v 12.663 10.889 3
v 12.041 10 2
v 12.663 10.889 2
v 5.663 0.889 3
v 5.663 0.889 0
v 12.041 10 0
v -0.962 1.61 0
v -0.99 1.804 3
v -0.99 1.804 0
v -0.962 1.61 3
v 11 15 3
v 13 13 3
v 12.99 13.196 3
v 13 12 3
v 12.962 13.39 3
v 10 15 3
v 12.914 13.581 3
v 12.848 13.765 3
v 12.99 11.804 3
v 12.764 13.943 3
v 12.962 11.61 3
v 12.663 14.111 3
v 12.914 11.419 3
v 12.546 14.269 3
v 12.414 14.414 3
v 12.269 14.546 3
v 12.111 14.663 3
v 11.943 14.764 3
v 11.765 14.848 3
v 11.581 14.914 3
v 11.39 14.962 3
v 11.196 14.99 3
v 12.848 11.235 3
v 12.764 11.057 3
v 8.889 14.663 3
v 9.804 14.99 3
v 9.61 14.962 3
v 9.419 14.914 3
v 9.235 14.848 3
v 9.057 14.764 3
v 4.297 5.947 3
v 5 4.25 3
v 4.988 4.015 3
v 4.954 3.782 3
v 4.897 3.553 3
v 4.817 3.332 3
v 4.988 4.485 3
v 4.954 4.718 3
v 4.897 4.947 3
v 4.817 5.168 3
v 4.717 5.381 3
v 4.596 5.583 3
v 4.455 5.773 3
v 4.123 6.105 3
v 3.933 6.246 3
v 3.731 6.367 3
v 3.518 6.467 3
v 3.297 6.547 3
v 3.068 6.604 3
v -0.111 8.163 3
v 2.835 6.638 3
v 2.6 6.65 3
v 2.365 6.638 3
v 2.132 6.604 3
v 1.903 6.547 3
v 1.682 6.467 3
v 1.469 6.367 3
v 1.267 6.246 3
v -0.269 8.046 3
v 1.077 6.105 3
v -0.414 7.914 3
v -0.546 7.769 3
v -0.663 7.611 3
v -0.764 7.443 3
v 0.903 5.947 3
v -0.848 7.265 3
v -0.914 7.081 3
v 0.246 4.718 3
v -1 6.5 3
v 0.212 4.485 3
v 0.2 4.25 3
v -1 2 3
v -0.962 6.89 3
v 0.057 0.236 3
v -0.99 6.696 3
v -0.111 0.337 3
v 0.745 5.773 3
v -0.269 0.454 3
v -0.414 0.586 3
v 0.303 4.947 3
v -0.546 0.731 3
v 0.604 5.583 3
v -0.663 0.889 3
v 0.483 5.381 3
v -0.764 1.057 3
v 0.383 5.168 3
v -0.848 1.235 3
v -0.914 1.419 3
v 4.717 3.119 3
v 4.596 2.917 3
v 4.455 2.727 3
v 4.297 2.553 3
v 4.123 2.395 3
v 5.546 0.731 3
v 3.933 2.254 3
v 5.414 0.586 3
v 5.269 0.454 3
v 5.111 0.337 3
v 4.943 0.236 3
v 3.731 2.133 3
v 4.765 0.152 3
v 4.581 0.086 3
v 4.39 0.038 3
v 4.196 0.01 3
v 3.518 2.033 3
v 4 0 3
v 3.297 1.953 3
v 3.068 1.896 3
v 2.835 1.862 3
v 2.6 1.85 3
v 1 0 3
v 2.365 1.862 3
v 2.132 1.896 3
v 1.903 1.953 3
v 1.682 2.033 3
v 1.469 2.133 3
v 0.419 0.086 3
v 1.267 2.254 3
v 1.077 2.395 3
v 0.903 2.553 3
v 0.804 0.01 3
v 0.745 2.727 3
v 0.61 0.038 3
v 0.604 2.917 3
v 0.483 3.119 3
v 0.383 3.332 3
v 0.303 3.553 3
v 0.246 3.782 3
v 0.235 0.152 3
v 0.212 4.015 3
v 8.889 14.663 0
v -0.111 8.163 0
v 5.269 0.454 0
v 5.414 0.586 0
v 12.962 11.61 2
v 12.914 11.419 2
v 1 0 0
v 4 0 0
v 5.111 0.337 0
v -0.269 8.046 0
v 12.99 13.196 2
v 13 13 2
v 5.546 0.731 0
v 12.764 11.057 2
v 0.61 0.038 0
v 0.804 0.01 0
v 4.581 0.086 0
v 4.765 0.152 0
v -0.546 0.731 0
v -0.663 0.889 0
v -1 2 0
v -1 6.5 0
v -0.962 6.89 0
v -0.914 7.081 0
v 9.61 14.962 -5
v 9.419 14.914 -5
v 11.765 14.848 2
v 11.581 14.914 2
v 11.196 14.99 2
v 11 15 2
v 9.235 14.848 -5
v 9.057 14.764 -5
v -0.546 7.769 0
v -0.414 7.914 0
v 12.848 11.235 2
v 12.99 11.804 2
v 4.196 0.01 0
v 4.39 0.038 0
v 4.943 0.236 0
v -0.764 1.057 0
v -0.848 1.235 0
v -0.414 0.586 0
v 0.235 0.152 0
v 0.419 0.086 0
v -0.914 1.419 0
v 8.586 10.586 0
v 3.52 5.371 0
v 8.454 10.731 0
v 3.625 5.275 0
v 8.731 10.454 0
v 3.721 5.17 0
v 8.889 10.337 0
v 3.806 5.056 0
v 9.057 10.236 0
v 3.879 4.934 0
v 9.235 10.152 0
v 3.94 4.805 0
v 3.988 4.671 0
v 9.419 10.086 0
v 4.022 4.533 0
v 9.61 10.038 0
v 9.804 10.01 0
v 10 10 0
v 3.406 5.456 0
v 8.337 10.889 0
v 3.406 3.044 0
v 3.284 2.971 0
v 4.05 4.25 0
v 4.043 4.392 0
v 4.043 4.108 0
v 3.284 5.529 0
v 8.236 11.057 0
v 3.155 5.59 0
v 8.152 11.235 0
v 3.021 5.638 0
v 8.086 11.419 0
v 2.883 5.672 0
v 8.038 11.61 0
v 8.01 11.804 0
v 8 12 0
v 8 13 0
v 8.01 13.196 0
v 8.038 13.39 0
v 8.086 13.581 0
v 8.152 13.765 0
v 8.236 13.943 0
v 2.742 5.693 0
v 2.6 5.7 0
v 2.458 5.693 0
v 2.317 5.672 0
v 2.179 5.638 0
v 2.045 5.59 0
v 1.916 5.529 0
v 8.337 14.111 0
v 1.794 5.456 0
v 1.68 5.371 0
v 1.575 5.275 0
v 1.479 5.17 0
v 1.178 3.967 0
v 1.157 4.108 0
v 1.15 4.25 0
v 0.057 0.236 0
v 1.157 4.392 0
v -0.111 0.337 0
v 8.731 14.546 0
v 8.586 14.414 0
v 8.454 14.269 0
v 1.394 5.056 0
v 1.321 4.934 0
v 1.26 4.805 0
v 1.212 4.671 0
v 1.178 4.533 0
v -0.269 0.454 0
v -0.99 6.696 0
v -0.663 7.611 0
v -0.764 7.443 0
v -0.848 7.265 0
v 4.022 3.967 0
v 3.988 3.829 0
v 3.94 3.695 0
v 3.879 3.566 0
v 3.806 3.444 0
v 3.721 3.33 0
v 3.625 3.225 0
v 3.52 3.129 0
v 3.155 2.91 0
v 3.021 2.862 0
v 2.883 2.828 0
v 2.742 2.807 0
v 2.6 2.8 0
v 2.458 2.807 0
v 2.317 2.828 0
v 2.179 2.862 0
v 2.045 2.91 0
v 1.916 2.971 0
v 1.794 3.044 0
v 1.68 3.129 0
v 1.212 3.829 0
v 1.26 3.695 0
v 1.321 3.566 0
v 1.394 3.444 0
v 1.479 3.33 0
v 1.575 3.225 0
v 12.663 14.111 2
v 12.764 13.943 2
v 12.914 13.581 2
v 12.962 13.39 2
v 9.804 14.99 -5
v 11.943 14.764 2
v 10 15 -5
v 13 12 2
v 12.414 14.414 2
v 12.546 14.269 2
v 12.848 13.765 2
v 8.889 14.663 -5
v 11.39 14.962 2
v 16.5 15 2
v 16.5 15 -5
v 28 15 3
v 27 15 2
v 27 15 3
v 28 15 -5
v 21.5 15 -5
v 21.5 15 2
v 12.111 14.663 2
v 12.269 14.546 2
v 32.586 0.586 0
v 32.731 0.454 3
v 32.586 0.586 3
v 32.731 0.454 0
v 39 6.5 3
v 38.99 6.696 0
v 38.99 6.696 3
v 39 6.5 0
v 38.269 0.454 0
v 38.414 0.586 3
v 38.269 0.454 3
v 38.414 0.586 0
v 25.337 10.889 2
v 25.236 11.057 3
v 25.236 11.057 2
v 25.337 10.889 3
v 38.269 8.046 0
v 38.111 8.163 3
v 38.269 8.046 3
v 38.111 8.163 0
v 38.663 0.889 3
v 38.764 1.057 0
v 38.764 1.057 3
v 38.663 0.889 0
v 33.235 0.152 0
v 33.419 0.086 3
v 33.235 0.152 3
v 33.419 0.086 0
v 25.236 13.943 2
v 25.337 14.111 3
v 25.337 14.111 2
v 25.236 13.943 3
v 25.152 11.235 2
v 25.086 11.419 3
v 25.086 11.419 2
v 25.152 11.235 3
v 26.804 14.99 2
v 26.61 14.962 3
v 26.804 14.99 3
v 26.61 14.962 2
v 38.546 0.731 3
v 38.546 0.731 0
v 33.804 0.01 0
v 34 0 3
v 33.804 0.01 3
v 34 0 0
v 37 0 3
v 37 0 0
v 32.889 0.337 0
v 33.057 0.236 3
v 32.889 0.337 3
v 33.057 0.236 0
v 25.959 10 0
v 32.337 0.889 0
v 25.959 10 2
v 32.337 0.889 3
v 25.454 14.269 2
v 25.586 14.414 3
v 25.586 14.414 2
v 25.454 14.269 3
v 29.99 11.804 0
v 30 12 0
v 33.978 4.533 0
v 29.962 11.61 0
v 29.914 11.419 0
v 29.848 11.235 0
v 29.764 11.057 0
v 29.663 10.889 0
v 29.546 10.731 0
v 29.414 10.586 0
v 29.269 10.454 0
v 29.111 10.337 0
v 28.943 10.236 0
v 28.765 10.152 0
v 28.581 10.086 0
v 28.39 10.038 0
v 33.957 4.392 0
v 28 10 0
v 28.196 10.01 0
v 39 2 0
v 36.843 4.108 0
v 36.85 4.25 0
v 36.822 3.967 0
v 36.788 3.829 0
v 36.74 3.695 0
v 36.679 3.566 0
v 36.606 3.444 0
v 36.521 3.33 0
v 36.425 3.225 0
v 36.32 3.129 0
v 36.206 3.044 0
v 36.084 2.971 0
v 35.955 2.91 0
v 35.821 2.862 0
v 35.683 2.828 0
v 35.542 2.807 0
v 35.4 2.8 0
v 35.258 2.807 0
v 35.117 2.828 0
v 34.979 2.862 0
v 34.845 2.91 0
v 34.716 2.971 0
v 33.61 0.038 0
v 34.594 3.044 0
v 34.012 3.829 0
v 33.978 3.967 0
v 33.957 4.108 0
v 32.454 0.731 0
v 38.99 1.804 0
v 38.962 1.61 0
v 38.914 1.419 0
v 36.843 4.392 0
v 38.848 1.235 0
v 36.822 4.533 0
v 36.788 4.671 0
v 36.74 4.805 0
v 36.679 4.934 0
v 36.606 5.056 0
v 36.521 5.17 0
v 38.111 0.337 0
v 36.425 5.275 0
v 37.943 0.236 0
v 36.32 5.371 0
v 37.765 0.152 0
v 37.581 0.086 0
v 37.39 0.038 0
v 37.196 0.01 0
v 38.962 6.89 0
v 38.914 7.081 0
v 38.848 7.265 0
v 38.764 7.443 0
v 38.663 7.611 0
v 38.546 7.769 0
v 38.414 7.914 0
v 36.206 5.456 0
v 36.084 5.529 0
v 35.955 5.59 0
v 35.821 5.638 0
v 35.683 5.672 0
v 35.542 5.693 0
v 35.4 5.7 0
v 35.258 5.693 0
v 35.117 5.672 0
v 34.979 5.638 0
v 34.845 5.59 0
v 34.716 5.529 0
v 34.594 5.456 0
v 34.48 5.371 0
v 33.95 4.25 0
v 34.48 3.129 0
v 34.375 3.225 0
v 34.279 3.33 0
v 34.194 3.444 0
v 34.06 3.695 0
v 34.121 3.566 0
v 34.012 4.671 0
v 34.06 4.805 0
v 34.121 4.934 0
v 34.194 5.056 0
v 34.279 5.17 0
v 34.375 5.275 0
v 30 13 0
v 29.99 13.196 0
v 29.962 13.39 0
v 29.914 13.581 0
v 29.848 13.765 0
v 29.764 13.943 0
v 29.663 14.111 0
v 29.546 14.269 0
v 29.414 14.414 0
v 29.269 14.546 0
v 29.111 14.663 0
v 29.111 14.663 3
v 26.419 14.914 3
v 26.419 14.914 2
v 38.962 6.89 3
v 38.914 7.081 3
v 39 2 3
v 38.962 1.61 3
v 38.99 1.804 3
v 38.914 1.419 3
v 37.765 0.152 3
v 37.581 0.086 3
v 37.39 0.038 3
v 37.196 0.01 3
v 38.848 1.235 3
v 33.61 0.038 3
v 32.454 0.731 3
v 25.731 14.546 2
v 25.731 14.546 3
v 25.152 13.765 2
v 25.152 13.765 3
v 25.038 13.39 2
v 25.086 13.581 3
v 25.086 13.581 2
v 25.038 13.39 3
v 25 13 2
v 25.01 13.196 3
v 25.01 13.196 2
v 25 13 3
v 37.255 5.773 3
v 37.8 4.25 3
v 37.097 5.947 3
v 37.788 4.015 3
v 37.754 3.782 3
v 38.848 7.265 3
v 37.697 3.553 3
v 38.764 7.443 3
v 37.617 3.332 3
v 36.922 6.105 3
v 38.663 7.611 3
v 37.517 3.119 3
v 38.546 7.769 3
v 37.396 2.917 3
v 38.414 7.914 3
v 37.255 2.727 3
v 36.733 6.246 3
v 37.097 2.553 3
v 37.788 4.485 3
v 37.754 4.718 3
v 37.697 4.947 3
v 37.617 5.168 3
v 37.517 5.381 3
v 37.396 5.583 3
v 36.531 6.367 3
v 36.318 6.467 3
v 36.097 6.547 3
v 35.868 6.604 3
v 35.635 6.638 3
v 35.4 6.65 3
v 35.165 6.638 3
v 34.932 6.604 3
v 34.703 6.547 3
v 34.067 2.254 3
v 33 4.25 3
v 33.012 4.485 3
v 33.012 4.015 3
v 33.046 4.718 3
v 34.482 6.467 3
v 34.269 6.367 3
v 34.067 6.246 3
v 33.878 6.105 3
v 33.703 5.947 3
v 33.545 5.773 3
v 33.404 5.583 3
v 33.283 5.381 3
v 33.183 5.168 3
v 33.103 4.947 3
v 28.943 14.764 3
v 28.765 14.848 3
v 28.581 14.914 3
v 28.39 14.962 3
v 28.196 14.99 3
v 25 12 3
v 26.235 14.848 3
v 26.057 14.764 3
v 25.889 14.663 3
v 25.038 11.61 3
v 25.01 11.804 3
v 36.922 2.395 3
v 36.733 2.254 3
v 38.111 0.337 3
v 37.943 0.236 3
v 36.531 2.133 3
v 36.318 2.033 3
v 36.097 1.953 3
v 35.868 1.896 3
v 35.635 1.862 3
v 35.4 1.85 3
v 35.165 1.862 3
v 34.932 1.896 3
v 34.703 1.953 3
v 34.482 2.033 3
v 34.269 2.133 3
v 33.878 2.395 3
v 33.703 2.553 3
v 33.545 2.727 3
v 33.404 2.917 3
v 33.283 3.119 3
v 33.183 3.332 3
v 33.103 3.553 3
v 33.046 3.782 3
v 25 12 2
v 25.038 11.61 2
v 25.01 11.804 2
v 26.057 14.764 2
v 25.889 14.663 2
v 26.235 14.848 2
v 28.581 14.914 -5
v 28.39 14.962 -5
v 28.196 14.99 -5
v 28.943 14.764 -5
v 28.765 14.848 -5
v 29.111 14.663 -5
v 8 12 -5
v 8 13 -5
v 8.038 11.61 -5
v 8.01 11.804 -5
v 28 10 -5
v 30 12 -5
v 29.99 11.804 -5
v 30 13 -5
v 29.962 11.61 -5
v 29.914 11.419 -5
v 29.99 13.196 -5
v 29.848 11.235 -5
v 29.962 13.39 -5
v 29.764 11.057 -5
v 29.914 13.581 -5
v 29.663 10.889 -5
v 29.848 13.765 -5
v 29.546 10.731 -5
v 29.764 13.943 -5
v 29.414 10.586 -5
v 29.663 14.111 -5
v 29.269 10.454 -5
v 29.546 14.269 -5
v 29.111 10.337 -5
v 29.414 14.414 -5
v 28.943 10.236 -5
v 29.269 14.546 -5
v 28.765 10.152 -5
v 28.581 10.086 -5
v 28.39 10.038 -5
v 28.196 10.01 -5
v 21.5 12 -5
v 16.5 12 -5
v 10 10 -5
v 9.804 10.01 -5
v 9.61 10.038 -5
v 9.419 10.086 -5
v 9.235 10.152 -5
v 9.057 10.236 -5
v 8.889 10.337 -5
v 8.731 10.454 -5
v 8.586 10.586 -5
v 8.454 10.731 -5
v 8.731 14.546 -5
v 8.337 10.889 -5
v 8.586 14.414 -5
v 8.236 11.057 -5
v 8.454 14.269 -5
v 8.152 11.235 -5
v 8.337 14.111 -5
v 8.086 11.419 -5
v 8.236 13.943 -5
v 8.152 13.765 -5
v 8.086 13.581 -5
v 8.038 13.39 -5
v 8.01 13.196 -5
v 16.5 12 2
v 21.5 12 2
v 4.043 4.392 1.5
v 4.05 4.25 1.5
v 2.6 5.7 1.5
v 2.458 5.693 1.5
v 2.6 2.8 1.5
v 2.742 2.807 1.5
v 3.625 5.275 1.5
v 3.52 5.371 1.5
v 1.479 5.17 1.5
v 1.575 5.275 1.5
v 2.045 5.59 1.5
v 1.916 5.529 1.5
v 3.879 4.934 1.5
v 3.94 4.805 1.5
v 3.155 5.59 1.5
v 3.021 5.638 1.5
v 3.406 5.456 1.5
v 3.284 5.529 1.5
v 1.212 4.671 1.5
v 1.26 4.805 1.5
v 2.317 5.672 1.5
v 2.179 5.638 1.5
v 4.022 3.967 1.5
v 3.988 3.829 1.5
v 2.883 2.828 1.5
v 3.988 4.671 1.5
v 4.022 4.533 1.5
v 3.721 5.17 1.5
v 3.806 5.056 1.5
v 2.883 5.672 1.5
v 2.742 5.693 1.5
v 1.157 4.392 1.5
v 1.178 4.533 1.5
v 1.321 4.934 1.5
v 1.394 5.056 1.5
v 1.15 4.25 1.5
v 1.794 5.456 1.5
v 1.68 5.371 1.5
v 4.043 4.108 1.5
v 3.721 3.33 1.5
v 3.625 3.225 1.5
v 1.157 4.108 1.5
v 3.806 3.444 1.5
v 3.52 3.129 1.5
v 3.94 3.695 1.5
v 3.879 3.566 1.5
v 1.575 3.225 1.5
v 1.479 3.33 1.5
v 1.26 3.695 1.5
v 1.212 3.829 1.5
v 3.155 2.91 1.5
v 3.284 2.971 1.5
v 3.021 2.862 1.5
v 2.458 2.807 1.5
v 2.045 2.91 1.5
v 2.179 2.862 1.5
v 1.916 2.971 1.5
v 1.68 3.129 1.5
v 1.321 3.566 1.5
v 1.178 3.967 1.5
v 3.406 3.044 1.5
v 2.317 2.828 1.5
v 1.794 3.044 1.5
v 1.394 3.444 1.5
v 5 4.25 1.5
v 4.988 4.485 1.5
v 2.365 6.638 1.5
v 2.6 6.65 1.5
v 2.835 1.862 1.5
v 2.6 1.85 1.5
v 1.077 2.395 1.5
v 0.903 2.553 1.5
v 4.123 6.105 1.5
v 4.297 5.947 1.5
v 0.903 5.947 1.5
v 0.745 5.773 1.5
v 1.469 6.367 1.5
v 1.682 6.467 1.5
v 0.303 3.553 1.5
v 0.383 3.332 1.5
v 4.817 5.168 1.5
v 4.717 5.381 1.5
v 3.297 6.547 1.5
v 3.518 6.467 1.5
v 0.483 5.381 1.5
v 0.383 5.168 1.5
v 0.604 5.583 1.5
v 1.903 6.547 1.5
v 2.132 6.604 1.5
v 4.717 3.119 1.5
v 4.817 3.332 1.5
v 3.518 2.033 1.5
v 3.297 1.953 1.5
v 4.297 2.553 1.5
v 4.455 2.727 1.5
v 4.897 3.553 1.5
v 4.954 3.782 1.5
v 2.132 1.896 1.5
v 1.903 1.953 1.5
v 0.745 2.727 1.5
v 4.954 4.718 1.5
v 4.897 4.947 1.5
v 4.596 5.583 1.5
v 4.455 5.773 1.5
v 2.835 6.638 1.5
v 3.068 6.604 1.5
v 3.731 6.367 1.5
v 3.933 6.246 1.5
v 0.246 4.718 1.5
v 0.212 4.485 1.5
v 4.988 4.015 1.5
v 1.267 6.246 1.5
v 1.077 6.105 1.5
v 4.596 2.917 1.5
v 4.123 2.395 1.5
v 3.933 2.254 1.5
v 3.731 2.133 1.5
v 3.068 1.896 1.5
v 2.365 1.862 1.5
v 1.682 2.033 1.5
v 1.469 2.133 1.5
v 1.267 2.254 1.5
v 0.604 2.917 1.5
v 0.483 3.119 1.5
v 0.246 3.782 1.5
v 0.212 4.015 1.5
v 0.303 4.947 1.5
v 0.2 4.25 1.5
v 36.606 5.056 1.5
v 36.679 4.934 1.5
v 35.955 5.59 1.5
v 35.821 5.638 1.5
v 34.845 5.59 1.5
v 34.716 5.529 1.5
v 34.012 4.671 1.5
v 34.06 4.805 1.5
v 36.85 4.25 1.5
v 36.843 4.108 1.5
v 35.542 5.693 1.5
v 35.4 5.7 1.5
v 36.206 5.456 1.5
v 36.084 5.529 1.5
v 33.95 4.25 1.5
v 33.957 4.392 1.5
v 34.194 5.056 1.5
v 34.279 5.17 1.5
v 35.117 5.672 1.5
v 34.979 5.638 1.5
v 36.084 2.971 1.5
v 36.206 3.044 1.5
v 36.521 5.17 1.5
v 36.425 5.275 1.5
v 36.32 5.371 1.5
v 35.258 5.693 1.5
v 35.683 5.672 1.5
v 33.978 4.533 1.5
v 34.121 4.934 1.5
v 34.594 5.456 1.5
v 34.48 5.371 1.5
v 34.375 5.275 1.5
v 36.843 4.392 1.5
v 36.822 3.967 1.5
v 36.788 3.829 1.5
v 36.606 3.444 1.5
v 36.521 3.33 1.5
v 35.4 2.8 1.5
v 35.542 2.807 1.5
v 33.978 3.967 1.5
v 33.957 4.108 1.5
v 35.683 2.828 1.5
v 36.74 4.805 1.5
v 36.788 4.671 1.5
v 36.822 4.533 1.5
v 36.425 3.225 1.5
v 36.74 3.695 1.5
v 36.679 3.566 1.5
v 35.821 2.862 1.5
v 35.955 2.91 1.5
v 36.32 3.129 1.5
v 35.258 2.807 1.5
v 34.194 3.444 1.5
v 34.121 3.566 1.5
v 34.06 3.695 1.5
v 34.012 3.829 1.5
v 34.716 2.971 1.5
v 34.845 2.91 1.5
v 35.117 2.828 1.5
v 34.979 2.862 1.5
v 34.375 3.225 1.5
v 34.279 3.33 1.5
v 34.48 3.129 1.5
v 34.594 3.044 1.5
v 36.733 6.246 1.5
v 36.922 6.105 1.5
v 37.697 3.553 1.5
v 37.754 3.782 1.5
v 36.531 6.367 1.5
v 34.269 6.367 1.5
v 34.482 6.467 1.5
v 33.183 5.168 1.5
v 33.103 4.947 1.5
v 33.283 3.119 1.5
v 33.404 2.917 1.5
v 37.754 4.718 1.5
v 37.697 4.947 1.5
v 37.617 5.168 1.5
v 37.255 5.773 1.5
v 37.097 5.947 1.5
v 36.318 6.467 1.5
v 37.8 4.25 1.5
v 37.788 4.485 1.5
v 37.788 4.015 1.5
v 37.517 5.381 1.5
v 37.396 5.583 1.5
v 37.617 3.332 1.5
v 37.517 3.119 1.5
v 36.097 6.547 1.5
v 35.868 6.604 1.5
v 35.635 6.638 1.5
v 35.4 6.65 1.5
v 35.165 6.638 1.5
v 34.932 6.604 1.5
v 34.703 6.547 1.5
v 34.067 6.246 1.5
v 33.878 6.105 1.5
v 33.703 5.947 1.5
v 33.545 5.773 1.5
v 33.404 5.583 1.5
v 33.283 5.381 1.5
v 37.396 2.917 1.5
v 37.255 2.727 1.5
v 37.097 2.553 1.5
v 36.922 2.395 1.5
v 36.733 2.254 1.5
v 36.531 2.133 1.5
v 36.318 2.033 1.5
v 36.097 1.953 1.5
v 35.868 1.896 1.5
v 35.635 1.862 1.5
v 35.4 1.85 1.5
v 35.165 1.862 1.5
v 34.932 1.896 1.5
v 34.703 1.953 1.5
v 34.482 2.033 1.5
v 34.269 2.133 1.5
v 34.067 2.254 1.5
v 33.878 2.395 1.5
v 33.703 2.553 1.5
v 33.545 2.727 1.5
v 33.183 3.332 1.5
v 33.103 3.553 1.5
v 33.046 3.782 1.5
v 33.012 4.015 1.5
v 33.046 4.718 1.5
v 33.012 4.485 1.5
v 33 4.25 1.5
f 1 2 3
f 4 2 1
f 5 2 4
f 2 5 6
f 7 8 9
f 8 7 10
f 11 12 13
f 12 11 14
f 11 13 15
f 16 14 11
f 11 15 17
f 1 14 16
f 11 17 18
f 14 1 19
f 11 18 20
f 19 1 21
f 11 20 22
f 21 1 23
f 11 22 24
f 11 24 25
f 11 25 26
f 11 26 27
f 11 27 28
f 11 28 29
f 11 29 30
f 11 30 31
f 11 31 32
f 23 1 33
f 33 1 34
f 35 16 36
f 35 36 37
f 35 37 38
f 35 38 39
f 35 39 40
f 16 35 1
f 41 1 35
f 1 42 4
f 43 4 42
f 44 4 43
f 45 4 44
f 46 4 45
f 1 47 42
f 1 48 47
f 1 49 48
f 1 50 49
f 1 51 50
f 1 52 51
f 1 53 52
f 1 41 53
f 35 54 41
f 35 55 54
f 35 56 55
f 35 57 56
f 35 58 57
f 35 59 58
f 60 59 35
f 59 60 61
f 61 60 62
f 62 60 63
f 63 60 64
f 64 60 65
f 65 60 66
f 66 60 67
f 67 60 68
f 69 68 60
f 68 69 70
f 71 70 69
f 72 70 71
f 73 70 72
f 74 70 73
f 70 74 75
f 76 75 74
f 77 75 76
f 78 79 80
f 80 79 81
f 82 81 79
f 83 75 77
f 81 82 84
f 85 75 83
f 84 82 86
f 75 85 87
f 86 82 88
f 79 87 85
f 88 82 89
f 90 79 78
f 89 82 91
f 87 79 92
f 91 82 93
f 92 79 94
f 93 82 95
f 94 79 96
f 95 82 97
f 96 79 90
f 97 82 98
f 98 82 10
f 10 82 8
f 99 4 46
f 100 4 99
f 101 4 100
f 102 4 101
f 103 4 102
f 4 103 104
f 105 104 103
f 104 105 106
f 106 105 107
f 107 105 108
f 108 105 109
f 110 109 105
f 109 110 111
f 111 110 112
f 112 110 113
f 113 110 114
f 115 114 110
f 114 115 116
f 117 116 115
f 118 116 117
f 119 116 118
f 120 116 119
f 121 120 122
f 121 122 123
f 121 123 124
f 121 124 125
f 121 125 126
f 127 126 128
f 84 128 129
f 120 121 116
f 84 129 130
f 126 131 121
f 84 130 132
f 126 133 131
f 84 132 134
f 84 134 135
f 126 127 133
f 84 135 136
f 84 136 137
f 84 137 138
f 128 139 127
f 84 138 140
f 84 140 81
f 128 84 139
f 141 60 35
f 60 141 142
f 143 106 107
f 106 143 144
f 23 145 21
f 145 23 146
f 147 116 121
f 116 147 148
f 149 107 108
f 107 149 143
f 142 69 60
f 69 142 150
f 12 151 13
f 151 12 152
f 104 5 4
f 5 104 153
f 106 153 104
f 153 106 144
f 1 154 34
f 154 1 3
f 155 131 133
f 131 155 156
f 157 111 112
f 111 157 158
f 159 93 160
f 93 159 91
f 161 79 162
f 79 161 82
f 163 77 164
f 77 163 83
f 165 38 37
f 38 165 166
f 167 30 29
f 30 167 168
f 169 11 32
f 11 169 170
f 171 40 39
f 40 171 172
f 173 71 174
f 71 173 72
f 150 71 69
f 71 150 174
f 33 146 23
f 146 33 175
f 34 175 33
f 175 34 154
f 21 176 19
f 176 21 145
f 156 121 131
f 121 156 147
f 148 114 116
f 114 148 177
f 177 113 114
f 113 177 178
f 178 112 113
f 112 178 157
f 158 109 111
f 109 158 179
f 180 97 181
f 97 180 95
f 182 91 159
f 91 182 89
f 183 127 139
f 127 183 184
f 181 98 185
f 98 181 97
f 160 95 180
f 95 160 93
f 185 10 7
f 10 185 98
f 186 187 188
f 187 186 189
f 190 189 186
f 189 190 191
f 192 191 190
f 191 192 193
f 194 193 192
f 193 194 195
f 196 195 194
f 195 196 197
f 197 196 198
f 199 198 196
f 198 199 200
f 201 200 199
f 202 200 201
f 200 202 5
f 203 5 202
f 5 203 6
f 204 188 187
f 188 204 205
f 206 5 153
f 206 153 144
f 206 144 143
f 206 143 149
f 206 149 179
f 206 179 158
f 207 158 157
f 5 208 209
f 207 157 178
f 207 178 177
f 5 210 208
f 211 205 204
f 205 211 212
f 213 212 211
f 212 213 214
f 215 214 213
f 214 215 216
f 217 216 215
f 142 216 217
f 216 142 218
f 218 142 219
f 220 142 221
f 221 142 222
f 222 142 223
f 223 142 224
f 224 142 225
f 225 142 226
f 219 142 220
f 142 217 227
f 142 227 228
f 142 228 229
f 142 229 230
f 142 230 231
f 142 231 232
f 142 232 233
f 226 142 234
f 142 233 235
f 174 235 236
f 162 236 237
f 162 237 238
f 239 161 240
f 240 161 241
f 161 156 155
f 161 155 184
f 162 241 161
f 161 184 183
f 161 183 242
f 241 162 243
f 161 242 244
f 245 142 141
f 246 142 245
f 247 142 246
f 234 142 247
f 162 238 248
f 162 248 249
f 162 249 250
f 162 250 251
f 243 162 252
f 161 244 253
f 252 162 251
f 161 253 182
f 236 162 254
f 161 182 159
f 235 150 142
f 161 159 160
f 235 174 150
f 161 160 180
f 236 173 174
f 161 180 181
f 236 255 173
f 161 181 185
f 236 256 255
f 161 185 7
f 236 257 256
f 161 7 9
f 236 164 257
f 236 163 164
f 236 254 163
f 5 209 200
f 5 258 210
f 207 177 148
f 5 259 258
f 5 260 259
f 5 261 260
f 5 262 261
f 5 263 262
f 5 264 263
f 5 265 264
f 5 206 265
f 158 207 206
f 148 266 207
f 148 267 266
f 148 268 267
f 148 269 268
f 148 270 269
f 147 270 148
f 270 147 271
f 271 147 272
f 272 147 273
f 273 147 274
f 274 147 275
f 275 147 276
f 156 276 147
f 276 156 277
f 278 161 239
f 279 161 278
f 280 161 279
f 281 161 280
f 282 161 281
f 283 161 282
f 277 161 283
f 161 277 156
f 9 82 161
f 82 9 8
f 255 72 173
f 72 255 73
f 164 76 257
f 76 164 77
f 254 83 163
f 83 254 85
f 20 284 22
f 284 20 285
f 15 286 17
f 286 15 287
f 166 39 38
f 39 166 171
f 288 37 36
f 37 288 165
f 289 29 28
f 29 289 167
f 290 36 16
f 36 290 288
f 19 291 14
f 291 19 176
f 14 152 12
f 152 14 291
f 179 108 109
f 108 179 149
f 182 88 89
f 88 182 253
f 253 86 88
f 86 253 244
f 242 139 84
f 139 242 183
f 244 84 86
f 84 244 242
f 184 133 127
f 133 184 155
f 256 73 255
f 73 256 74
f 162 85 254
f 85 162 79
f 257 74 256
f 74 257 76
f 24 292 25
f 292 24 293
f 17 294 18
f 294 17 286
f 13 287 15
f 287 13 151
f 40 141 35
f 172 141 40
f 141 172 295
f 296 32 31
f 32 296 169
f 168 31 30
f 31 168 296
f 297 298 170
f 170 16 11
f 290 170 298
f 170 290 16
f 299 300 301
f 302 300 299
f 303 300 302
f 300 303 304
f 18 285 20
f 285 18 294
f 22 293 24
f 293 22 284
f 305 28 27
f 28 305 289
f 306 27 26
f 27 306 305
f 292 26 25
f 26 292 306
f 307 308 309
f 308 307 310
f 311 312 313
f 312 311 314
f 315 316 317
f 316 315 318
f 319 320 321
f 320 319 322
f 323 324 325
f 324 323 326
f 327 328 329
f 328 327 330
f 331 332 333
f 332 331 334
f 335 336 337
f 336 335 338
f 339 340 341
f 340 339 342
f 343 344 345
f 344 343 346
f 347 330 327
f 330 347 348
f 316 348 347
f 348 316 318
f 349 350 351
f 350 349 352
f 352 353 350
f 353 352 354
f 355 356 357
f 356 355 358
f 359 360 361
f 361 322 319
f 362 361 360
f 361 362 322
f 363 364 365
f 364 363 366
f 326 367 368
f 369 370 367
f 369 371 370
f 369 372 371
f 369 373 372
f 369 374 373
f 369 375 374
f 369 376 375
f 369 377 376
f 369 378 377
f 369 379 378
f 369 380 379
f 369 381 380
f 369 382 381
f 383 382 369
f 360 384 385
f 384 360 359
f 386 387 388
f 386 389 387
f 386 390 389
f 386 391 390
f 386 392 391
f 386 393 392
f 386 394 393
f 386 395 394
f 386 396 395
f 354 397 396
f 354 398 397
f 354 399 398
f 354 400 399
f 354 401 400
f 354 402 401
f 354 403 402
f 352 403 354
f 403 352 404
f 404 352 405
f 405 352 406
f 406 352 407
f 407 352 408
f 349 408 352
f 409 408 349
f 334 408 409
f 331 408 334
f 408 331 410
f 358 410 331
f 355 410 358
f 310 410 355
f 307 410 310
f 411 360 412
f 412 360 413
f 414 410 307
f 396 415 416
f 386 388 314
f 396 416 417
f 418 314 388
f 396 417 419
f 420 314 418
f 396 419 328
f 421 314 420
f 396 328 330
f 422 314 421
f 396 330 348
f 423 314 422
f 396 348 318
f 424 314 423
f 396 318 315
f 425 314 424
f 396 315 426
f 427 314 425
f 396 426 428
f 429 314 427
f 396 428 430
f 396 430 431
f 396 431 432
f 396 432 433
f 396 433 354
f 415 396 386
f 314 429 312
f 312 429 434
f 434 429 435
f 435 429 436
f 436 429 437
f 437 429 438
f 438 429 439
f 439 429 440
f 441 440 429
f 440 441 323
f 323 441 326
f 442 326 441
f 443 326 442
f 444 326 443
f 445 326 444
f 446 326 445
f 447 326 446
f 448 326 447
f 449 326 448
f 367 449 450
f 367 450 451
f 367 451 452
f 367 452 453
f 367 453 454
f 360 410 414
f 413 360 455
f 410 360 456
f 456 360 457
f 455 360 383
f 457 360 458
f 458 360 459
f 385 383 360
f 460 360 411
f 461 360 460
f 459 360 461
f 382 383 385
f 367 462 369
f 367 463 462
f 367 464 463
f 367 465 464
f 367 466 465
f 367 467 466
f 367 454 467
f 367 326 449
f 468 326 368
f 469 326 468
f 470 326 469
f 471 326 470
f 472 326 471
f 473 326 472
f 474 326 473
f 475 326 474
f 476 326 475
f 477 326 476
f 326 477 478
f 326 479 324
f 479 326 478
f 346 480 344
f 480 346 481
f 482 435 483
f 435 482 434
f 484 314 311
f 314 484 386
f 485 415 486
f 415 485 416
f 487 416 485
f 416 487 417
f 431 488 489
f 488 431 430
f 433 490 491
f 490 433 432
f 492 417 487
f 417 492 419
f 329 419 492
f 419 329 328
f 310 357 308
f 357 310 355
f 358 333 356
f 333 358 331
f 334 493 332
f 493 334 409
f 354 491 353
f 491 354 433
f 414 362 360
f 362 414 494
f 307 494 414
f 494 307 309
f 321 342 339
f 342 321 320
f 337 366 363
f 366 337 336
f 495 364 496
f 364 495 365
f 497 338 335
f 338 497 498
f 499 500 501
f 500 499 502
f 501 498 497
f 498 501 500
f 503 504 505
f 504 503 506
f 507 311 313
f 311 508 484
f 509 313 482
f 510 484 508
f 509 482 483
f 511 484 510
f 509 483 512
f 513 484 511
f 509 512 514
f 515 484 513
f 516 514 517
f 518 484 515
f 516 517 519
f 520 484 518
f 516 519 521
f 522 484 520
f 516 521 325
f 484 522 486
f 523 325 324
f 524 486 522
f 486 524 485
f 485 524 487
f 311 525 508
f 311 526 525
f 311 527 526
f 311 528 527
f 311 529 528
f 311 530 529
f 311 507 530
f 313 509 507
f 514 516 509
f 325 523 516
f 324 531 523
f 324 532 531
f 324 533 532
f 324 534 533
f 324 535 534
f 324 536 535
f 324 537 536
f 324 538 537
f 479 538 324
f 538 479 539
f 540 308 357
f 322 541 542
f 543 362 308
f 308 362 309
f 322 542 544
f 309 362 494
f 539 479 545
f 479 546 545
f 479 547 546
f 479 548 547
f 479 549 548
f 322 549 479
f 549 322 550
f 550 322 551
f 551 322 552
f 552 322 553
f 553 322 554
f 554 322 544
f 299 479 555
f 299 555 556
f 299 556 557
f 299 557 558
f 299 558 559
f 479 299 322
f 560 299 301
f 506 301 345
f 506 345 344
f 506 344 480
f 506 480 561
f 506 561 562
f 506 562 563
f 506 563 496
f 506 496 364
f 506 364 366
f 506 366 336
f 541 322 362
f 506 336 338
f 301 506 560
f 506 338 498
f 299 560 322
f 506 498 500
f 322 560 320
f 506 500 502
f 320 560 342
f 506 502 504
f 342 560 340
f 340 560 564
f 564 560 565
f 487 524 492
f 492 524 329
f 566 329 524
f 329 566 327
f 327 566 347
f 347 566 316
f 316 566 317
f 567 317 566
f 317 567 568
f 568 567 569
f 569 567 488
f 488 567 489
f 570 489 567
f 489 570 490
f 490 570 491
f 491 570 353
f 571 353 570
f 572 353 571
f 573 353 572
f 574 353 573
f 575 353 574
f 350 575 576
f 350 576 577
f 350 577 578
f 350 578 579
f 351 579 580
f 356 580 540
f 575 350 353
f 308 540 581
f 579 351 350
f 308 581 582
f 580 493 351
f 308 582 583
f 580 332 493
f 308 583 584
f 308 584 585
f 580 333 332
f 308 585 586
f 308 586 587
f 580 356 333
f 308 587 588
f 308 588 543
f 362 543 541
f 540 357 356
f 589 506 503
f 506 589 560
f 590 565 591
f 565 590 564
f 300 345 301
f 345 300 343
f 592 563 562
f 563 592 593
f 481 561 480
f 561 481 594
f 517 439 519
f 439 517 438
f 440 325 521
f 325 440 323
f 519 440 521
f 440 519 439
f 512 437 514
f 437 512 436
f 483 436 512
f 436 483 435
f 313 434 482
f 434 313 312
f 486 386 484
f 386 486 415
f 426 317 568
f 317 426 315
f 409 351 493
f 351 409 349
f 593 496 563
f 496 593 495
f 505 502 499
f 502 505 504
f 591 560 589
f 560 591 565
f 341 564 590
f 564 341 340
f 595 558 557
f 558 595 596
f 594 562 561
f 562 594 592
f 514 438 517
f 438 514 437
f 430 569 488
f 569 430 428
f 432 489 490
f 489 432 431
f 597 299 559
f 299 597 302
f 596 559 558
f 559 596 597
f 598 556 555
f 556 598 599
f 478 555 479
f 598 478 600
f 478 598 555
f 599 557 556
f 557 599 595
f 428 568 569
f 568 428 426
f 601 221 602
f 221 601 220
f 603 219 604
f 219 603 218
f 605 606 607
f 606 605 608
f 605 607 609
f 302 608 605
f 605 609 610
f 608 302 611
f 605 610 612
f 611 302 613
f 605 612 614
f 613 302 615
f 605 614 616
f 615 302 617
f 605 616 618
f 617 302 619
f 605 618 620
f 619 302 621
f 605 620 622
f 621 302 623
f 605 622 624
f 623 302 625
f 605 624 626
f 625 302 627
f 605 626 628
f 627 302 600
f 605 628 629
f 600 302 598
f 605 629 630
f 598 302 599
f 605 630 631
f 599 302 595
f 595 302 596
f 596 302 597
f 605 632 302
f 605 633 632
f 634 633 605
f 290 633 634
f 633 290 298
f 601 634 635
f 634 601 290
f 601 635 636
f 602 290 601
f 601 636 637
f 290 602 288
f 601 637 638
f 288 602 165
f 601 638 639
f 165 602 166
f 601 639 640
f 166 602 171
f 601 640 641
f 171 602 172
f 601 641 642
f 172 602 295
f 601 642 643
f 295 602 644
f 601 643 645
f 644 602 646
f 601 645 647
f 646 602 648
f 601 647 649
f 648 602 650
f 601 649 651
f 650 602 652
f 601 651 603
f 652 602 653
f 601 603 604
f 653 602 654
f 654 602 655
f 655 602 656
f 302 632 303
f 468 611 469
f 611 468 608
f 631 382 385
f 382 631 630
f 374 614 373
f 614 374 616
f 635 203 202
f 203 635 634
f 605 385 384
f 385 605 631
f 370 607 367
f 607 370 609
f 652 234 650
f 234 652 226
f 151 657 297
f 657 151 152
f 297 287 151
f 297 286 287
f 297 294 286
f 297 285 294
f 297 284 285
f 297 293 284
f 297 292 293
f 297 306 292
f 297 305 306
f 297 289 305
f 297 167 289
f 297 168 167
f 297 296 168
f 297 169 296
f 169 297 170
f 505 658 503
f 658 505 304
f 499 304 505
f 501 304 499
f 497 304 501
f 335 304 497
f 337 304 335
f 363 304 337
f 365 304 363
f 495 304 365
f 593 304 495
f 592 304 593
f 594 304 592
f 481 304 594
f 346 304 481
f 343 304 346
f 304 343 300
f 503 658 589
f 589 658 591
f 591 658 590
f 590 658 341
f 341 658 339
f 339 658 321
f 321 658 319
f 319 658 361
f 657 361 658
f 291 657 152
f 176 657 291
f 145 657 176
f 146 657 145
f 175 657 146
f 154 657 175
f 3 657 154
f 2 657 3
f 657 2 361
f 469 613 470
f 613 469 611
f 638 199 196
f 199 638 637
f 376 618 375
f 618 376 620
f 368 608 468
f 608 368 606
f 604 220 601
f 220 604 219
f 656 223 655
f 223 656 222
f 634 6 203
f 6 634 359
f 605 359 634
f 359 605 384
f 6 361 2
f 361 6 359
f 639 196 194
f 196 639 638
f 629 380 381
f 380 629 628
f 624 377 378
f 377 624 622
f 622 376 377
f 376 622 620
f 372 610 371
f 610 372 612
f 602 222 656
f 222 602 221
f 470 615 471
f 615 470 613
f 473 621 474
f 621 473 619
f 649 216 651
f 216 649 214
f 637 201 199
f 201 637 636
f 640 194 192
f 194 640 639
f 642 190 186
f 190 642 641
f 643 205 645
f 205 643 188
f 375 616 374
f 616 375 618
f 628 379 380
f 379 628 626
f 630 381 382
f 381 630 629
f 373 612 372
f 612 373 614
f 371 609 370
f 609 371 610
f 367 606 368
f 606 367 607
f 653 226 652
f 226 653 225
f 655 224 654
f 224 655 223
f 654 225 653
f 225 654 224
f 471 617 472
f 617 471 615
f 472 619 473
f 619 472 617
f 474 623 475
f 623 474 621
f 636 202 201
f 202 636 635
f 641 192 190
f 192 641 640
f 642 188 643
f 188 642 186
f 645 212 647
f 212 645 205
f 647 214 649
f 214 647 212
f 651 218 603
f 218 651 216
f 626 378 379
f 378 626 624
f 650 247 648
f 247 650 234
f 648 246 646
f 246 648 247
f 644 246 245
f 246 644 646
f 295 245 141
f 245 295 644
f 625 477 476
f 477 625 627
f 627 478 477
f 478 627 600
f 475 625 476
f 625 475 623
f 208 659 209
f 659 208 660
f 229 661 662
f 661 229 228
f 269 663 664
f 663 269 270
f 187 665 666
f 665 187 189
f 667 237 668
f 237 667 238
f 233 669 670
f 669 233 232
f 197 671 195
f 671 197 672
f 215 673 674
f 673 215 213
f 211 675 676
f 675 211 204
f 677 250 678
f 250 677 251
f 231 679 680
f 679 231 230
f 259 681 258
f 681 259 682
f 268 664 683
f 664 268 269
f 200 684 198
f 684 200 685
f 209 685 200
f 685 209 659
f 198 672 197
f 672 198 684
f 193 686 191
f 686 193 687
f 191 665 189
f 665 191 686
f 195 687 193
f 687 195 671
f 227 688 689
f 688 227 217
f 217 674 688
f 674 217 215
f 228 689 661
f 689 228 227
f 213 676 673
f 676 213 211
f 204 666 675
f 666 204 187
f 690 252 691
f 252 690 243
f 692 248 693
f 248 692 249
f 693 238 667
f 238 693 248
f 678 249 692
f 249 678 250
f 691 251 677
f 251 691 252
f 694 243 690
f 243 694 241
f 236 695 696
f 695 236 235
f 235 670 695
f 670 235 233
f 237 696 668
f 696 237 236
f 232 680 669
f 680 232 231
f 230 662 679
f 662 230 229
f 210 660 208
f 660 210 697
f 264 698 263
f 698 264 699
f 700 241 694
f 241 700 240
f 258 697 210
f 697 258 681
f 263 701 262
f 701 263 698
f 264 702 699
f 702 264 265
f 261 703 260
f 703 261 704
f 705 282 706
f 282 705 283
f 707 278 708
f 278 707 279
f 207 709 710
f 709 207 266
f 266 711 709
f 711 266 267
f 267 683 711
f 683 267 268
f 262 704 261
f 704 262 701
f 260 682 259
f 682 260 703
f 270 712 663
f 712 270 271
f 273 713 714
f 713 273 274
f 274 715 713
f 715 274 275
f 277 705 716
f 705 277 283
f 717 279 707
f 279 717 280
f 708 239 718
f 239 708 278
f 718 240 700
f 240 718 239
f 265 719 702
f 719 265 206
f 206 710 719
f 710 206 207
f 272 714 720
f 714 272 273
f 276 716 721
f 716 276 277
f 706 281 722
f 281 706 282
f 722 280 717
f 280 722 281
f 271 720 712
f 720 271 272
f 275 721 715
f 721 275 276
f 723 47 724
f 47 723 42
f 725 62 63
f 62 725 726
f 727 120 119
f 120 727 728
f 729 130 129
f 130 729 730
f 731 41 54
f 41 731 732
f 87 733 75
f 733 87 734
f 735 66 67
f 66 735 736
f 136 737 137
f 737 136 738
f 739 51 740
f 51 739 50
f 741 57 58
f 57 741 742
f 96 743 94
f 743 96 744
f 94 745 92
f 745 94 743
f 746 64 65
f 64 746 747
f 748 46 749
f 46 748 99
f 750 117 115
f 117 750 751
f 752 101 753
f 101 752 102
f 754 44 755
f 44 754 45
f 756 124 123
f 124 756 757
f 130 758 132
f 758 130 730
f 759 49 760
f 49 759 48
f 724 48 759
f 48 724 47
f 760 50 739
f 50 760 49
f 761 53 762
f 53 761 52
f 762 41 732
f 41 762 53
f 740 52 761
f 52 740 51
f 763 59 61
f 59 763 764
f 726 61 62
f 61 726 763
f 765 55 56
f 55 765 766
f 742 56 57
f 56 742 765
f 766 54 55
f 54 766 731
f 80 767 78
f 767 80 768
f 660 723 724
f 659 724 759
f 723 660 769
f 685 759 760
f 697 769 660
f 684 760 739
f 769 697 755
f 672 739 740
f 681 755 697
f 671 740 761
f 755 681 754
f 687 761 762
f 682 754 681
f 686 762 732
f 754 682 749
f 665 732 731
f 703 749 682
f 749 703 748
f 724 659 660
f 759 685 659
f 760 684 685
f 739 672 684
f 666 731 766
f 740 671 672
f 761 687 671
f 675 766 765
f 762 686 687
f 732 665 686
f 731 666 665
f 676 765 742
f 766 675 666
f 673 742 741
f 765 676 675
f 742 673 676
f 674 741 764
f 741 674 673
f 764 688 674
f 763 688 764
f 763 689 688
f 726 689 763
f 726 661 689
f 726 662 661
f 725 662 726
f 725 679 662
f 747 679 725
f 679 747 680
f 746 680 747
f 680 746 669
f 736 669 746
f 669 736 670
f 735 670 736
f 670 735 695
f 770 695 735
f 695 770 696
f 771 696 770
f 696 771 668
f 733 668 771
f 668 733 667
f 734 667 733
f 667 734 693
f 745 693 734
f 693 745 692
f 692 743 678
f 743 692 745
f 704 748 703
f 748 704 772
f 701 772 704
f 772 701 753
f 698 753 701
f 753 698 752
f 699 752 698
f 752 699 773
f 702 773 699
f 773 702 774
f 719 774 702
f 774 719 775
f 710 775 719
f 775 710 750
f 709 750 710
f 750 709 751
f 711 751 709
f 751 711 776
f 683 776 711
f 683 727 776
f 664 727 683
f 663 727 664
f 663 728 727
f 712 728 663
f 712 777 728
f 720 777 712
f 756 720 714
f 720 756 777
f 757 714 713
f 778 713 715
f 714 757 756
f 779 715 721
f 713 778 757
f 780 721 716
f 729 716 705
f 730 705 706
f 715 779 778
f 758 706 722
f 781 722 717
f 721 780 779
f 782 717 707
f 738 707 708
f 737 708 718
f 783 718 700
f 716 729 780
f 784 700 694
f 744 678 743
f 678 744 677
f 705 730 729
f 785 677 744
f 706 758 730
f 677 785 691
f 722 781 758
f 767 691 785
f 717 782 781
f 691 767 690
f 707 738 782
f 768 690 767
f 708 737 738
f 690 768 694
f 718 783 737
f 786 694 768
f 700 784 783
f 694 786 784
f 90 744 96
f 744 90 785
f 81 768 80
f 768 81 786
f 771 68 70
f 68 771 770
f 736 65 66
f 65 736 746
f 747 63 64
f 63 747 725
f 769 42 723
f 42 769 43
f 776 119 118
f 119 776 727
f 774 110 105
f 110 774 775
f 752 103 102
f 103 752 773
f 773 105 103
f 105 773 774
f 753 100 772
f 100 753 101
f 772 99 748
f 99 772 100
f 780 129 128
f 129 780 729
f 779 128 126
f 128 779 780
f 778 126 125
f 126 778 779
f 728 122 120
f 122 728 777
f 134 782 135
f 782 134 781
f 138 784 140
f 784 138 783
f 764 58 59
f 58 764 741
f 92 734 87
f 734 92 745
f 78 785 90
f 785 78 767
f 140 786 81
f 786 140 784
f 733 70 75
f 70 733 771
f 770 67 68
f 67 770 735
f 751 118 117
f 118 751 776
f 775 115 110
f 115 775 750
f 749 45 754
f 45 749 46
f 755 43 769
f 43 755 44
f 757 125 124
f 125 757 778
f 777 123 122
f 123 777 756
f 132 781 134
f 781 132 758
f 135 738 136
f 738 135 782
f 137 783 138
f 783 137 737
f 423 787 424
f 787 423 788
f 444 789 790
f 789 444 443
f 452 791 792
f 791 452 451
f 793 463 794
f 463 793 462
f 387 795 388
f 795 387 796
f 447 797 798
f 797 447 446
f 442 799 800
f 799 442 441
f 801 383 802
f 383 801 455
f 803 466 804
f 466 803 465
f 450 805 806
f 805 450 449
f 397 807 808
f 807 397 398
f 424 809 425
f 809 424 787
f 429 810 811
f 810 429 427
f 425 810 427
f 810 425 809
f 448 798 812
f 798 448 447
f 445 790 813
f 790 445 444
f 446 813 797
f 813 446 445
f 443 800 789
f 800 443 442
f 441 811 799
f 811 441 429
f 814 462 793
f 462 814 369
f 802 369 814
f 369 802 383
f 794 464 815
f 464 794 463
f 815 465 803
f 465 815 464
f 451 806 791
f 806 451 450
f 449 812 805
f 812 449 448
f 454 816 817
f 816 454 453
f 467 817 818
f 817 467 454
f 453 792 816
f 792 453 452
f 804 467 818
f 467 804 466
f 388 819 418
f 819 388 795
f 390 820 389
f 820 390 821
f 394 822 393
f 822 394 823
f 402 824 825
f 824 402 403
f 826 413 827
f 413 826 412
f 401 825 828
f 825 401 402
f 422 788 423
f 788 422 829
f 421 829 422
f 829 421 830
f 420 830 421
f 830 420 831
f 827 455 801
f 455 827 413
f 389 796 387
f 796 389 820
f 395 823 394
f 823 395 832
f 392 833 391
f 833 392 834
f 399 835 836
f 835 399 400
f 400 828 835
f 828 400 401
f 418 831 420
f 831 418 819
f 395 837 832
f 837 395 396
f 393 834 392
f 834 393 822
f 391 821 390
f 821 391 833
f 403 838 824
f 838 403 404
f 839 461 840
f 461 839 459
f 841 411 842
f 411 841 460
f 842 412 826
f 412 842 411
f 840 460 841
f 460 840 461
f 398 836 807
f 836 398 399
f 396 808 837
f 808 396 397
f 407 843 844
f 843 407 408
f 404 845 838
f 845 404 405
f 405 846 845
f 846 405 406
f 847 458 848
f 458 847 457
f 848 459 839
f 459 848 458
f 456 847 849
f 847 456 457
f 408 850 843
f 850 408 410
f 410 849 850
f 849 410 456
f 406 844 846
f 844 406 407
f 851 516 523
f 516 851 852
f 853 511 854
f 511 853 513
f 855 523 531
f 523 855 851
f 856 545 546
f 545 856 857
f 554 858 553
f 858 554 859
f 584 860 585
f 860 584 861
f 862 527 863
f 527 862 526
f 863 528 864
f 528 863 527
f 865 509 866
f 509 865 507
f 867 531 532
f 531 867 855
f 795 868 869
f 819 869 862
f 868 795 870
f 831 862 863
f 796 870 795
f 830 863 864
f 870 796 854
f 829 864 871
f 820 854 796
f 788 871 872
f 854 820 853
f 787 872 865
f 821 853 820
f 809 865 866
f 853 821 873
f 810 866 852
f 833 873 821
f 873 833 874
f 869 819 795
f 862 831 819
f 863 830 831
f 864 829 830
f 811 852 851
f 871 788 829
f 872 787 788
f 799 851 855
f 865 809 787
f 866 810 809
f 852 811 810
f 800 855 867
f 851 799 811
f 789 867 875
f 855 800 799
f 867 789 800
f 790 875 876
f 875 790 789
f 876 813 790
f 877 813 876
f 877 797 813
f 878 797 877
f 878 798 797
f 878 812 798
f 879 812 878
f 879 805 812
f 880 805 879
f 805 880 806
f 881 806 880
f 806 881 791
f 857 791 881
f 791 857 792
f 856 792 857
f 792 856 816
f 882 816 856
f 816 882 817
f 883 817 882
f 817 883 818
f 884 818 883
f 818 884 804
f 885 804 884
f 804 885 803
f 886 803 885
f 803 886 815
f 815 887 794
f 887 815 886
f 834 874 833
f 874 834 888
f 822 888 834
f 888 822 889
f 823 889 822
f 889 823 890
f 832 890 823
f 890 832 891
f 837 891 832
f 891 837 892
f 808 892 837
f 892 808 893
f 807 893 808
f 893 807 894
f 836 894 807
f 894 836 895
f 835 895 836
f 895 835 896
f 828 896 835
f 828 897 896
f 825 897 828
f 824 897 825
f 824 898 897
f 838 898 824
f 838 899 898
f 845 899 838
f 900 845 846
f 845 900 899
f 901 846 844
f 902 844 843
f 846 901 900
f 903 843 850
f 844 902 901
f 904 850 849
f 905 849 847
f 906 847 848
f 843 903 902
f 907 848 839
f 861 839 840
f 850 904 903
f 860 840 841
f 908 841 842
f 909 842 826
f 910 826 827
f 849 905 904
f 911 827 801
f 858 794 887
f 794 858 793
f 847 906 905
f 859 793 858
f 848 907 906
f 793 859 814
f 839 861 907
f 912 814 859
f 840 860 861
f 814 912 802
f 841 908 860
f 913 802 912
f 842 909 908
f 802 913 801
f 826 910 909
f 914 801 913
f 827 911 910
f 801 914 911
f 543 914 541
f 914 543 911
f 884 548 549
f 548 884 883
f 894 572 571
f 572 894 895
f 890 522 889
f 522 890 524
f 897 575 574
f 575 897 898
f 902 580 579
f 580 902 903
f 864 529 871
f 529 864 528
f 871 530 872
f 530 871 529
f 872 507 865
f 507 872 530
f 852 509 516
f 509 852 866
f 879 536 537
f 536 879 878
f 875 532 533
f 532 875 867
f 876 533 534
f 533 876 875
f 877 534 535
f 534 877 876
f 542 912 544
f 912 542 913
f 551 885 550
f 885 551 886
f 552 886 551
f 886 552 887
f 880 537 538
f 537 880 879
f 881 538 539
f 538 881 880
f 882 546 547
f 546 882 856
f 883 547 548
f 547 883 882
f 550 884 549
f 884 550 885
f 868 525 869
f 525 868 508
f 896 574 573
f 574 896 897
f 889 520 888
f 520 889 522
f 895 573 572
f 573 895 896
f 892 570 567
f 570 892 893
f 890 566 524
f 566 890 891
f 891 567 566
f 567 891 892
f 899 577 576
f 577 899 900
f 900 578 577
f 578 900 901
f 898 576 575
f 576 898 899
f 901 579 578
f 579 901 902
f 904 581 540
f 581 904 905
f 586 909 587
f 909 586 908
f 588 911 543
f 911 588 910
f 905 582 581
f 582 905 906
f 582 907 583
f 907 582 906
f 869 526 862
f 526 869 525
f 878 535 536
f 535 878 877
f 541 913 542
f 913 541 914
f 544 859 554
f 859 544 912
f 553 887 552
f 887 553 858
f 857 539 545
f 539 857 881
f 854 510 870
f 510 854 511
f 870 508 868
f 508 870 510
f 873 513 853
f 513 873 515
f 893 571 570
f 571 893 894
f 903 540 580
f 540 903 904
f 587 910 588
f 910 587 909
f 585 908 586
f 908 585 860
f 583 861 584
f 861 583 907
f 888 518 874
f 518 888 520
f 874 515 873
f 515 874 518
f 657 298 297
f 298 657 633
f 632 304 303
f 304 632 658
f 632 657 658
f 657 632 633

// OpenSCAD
// file: ../../Universal/SCAD/rounded_box.scad
/**
 * Small "library" for creating boxes with rounded edges.
 *
 * Hendrik Busch, 2017 (https://github.com/hmbusch)
 *
 */
 
/**
 * Call to create a box with rounded edges (edges will be round on one plane only).
 * Be sure to increase $fn for nicer edges.
 * 
 * @param width
 *          the desired width of the box (default is 10mm)
 * @param depth
 *          the desired depth of the box (default is 10mm)
 * @param height
 *          the desired height of the box (default is 10mm)
 * @param edge_radius
 *          the radius of all the edges on the xy-plane (default is 2mm)
 *
 */
module box_with_round_edges(width = 10, depth = 10, height = 10, edge_radius = 2) {
    translate([edge_radius, edge_radius, 0]) hull() {
        ed = edge_radius * 2;
        cylinder(d = ed, h = height);
        translate([width - ed, 0, 0]) cylinder(d = edge_radius * 2, h = height);
        translate([0, depth - ed, 0]) cylinder(d = edge_radius * 2, h = height);
        translate([width - ed, depth -ed, 0]) cylinder(d = edge_radius * 2, h = height);
    }
}
// main file
use <../../Universal/SCAD/rounded_box.scad>;

$fn = 64;
thickness = 2;

module cageBarWithAngle() {
    difference() {
        union() {  
            hull() {
                translate([-1, 0, 0]) box_with_round_edges(width = 7, depth = 8.5, height = thickness + 1, edge_radius = 2);
                translate([8, 10, 0]) box_with_round_edges(width = 5, depth = 5, height = thickness + 1, edge_radius = 2);
            }

            hull() {
                translate([32, 0, 0]) box_with_round_edges(width = 7, depth = 8.5, height = thickness + 1, edge_radius = 2);
                translate([25, 10, 0]) box_with_round_edges(width = 5, depth = 5, height = thickness + 1, edge_radius = 2);
            }

            translate([8, 10, -5]) box_with_round_edges(width = 22, depth = 5, height = thickness + 5, edge_radius = 2);
        }
        
        translate([2.6, 8.5/2, -0.1]) cylinder(d = 2.9, h = thickness + 1.2);
        translate([2.6, 8.5/2, thickness - .6 + 0.1]) cylinder(d = 4.8, h = 1.6);
        translate([38 - 2.6, 8.5/2, -0.1]) cylinder(d = 2.9, h = thickness + 1.2);
        translate([38 - 2.6, 8.5/2, thickness - .6 + 0.1]) cylinder(d = 4.8, h = 1.6);
        translate([(38-5)/2, 12, -6]) cube([5, 5, 9]);
    }
    
    
}

cageBarWithAngle();
